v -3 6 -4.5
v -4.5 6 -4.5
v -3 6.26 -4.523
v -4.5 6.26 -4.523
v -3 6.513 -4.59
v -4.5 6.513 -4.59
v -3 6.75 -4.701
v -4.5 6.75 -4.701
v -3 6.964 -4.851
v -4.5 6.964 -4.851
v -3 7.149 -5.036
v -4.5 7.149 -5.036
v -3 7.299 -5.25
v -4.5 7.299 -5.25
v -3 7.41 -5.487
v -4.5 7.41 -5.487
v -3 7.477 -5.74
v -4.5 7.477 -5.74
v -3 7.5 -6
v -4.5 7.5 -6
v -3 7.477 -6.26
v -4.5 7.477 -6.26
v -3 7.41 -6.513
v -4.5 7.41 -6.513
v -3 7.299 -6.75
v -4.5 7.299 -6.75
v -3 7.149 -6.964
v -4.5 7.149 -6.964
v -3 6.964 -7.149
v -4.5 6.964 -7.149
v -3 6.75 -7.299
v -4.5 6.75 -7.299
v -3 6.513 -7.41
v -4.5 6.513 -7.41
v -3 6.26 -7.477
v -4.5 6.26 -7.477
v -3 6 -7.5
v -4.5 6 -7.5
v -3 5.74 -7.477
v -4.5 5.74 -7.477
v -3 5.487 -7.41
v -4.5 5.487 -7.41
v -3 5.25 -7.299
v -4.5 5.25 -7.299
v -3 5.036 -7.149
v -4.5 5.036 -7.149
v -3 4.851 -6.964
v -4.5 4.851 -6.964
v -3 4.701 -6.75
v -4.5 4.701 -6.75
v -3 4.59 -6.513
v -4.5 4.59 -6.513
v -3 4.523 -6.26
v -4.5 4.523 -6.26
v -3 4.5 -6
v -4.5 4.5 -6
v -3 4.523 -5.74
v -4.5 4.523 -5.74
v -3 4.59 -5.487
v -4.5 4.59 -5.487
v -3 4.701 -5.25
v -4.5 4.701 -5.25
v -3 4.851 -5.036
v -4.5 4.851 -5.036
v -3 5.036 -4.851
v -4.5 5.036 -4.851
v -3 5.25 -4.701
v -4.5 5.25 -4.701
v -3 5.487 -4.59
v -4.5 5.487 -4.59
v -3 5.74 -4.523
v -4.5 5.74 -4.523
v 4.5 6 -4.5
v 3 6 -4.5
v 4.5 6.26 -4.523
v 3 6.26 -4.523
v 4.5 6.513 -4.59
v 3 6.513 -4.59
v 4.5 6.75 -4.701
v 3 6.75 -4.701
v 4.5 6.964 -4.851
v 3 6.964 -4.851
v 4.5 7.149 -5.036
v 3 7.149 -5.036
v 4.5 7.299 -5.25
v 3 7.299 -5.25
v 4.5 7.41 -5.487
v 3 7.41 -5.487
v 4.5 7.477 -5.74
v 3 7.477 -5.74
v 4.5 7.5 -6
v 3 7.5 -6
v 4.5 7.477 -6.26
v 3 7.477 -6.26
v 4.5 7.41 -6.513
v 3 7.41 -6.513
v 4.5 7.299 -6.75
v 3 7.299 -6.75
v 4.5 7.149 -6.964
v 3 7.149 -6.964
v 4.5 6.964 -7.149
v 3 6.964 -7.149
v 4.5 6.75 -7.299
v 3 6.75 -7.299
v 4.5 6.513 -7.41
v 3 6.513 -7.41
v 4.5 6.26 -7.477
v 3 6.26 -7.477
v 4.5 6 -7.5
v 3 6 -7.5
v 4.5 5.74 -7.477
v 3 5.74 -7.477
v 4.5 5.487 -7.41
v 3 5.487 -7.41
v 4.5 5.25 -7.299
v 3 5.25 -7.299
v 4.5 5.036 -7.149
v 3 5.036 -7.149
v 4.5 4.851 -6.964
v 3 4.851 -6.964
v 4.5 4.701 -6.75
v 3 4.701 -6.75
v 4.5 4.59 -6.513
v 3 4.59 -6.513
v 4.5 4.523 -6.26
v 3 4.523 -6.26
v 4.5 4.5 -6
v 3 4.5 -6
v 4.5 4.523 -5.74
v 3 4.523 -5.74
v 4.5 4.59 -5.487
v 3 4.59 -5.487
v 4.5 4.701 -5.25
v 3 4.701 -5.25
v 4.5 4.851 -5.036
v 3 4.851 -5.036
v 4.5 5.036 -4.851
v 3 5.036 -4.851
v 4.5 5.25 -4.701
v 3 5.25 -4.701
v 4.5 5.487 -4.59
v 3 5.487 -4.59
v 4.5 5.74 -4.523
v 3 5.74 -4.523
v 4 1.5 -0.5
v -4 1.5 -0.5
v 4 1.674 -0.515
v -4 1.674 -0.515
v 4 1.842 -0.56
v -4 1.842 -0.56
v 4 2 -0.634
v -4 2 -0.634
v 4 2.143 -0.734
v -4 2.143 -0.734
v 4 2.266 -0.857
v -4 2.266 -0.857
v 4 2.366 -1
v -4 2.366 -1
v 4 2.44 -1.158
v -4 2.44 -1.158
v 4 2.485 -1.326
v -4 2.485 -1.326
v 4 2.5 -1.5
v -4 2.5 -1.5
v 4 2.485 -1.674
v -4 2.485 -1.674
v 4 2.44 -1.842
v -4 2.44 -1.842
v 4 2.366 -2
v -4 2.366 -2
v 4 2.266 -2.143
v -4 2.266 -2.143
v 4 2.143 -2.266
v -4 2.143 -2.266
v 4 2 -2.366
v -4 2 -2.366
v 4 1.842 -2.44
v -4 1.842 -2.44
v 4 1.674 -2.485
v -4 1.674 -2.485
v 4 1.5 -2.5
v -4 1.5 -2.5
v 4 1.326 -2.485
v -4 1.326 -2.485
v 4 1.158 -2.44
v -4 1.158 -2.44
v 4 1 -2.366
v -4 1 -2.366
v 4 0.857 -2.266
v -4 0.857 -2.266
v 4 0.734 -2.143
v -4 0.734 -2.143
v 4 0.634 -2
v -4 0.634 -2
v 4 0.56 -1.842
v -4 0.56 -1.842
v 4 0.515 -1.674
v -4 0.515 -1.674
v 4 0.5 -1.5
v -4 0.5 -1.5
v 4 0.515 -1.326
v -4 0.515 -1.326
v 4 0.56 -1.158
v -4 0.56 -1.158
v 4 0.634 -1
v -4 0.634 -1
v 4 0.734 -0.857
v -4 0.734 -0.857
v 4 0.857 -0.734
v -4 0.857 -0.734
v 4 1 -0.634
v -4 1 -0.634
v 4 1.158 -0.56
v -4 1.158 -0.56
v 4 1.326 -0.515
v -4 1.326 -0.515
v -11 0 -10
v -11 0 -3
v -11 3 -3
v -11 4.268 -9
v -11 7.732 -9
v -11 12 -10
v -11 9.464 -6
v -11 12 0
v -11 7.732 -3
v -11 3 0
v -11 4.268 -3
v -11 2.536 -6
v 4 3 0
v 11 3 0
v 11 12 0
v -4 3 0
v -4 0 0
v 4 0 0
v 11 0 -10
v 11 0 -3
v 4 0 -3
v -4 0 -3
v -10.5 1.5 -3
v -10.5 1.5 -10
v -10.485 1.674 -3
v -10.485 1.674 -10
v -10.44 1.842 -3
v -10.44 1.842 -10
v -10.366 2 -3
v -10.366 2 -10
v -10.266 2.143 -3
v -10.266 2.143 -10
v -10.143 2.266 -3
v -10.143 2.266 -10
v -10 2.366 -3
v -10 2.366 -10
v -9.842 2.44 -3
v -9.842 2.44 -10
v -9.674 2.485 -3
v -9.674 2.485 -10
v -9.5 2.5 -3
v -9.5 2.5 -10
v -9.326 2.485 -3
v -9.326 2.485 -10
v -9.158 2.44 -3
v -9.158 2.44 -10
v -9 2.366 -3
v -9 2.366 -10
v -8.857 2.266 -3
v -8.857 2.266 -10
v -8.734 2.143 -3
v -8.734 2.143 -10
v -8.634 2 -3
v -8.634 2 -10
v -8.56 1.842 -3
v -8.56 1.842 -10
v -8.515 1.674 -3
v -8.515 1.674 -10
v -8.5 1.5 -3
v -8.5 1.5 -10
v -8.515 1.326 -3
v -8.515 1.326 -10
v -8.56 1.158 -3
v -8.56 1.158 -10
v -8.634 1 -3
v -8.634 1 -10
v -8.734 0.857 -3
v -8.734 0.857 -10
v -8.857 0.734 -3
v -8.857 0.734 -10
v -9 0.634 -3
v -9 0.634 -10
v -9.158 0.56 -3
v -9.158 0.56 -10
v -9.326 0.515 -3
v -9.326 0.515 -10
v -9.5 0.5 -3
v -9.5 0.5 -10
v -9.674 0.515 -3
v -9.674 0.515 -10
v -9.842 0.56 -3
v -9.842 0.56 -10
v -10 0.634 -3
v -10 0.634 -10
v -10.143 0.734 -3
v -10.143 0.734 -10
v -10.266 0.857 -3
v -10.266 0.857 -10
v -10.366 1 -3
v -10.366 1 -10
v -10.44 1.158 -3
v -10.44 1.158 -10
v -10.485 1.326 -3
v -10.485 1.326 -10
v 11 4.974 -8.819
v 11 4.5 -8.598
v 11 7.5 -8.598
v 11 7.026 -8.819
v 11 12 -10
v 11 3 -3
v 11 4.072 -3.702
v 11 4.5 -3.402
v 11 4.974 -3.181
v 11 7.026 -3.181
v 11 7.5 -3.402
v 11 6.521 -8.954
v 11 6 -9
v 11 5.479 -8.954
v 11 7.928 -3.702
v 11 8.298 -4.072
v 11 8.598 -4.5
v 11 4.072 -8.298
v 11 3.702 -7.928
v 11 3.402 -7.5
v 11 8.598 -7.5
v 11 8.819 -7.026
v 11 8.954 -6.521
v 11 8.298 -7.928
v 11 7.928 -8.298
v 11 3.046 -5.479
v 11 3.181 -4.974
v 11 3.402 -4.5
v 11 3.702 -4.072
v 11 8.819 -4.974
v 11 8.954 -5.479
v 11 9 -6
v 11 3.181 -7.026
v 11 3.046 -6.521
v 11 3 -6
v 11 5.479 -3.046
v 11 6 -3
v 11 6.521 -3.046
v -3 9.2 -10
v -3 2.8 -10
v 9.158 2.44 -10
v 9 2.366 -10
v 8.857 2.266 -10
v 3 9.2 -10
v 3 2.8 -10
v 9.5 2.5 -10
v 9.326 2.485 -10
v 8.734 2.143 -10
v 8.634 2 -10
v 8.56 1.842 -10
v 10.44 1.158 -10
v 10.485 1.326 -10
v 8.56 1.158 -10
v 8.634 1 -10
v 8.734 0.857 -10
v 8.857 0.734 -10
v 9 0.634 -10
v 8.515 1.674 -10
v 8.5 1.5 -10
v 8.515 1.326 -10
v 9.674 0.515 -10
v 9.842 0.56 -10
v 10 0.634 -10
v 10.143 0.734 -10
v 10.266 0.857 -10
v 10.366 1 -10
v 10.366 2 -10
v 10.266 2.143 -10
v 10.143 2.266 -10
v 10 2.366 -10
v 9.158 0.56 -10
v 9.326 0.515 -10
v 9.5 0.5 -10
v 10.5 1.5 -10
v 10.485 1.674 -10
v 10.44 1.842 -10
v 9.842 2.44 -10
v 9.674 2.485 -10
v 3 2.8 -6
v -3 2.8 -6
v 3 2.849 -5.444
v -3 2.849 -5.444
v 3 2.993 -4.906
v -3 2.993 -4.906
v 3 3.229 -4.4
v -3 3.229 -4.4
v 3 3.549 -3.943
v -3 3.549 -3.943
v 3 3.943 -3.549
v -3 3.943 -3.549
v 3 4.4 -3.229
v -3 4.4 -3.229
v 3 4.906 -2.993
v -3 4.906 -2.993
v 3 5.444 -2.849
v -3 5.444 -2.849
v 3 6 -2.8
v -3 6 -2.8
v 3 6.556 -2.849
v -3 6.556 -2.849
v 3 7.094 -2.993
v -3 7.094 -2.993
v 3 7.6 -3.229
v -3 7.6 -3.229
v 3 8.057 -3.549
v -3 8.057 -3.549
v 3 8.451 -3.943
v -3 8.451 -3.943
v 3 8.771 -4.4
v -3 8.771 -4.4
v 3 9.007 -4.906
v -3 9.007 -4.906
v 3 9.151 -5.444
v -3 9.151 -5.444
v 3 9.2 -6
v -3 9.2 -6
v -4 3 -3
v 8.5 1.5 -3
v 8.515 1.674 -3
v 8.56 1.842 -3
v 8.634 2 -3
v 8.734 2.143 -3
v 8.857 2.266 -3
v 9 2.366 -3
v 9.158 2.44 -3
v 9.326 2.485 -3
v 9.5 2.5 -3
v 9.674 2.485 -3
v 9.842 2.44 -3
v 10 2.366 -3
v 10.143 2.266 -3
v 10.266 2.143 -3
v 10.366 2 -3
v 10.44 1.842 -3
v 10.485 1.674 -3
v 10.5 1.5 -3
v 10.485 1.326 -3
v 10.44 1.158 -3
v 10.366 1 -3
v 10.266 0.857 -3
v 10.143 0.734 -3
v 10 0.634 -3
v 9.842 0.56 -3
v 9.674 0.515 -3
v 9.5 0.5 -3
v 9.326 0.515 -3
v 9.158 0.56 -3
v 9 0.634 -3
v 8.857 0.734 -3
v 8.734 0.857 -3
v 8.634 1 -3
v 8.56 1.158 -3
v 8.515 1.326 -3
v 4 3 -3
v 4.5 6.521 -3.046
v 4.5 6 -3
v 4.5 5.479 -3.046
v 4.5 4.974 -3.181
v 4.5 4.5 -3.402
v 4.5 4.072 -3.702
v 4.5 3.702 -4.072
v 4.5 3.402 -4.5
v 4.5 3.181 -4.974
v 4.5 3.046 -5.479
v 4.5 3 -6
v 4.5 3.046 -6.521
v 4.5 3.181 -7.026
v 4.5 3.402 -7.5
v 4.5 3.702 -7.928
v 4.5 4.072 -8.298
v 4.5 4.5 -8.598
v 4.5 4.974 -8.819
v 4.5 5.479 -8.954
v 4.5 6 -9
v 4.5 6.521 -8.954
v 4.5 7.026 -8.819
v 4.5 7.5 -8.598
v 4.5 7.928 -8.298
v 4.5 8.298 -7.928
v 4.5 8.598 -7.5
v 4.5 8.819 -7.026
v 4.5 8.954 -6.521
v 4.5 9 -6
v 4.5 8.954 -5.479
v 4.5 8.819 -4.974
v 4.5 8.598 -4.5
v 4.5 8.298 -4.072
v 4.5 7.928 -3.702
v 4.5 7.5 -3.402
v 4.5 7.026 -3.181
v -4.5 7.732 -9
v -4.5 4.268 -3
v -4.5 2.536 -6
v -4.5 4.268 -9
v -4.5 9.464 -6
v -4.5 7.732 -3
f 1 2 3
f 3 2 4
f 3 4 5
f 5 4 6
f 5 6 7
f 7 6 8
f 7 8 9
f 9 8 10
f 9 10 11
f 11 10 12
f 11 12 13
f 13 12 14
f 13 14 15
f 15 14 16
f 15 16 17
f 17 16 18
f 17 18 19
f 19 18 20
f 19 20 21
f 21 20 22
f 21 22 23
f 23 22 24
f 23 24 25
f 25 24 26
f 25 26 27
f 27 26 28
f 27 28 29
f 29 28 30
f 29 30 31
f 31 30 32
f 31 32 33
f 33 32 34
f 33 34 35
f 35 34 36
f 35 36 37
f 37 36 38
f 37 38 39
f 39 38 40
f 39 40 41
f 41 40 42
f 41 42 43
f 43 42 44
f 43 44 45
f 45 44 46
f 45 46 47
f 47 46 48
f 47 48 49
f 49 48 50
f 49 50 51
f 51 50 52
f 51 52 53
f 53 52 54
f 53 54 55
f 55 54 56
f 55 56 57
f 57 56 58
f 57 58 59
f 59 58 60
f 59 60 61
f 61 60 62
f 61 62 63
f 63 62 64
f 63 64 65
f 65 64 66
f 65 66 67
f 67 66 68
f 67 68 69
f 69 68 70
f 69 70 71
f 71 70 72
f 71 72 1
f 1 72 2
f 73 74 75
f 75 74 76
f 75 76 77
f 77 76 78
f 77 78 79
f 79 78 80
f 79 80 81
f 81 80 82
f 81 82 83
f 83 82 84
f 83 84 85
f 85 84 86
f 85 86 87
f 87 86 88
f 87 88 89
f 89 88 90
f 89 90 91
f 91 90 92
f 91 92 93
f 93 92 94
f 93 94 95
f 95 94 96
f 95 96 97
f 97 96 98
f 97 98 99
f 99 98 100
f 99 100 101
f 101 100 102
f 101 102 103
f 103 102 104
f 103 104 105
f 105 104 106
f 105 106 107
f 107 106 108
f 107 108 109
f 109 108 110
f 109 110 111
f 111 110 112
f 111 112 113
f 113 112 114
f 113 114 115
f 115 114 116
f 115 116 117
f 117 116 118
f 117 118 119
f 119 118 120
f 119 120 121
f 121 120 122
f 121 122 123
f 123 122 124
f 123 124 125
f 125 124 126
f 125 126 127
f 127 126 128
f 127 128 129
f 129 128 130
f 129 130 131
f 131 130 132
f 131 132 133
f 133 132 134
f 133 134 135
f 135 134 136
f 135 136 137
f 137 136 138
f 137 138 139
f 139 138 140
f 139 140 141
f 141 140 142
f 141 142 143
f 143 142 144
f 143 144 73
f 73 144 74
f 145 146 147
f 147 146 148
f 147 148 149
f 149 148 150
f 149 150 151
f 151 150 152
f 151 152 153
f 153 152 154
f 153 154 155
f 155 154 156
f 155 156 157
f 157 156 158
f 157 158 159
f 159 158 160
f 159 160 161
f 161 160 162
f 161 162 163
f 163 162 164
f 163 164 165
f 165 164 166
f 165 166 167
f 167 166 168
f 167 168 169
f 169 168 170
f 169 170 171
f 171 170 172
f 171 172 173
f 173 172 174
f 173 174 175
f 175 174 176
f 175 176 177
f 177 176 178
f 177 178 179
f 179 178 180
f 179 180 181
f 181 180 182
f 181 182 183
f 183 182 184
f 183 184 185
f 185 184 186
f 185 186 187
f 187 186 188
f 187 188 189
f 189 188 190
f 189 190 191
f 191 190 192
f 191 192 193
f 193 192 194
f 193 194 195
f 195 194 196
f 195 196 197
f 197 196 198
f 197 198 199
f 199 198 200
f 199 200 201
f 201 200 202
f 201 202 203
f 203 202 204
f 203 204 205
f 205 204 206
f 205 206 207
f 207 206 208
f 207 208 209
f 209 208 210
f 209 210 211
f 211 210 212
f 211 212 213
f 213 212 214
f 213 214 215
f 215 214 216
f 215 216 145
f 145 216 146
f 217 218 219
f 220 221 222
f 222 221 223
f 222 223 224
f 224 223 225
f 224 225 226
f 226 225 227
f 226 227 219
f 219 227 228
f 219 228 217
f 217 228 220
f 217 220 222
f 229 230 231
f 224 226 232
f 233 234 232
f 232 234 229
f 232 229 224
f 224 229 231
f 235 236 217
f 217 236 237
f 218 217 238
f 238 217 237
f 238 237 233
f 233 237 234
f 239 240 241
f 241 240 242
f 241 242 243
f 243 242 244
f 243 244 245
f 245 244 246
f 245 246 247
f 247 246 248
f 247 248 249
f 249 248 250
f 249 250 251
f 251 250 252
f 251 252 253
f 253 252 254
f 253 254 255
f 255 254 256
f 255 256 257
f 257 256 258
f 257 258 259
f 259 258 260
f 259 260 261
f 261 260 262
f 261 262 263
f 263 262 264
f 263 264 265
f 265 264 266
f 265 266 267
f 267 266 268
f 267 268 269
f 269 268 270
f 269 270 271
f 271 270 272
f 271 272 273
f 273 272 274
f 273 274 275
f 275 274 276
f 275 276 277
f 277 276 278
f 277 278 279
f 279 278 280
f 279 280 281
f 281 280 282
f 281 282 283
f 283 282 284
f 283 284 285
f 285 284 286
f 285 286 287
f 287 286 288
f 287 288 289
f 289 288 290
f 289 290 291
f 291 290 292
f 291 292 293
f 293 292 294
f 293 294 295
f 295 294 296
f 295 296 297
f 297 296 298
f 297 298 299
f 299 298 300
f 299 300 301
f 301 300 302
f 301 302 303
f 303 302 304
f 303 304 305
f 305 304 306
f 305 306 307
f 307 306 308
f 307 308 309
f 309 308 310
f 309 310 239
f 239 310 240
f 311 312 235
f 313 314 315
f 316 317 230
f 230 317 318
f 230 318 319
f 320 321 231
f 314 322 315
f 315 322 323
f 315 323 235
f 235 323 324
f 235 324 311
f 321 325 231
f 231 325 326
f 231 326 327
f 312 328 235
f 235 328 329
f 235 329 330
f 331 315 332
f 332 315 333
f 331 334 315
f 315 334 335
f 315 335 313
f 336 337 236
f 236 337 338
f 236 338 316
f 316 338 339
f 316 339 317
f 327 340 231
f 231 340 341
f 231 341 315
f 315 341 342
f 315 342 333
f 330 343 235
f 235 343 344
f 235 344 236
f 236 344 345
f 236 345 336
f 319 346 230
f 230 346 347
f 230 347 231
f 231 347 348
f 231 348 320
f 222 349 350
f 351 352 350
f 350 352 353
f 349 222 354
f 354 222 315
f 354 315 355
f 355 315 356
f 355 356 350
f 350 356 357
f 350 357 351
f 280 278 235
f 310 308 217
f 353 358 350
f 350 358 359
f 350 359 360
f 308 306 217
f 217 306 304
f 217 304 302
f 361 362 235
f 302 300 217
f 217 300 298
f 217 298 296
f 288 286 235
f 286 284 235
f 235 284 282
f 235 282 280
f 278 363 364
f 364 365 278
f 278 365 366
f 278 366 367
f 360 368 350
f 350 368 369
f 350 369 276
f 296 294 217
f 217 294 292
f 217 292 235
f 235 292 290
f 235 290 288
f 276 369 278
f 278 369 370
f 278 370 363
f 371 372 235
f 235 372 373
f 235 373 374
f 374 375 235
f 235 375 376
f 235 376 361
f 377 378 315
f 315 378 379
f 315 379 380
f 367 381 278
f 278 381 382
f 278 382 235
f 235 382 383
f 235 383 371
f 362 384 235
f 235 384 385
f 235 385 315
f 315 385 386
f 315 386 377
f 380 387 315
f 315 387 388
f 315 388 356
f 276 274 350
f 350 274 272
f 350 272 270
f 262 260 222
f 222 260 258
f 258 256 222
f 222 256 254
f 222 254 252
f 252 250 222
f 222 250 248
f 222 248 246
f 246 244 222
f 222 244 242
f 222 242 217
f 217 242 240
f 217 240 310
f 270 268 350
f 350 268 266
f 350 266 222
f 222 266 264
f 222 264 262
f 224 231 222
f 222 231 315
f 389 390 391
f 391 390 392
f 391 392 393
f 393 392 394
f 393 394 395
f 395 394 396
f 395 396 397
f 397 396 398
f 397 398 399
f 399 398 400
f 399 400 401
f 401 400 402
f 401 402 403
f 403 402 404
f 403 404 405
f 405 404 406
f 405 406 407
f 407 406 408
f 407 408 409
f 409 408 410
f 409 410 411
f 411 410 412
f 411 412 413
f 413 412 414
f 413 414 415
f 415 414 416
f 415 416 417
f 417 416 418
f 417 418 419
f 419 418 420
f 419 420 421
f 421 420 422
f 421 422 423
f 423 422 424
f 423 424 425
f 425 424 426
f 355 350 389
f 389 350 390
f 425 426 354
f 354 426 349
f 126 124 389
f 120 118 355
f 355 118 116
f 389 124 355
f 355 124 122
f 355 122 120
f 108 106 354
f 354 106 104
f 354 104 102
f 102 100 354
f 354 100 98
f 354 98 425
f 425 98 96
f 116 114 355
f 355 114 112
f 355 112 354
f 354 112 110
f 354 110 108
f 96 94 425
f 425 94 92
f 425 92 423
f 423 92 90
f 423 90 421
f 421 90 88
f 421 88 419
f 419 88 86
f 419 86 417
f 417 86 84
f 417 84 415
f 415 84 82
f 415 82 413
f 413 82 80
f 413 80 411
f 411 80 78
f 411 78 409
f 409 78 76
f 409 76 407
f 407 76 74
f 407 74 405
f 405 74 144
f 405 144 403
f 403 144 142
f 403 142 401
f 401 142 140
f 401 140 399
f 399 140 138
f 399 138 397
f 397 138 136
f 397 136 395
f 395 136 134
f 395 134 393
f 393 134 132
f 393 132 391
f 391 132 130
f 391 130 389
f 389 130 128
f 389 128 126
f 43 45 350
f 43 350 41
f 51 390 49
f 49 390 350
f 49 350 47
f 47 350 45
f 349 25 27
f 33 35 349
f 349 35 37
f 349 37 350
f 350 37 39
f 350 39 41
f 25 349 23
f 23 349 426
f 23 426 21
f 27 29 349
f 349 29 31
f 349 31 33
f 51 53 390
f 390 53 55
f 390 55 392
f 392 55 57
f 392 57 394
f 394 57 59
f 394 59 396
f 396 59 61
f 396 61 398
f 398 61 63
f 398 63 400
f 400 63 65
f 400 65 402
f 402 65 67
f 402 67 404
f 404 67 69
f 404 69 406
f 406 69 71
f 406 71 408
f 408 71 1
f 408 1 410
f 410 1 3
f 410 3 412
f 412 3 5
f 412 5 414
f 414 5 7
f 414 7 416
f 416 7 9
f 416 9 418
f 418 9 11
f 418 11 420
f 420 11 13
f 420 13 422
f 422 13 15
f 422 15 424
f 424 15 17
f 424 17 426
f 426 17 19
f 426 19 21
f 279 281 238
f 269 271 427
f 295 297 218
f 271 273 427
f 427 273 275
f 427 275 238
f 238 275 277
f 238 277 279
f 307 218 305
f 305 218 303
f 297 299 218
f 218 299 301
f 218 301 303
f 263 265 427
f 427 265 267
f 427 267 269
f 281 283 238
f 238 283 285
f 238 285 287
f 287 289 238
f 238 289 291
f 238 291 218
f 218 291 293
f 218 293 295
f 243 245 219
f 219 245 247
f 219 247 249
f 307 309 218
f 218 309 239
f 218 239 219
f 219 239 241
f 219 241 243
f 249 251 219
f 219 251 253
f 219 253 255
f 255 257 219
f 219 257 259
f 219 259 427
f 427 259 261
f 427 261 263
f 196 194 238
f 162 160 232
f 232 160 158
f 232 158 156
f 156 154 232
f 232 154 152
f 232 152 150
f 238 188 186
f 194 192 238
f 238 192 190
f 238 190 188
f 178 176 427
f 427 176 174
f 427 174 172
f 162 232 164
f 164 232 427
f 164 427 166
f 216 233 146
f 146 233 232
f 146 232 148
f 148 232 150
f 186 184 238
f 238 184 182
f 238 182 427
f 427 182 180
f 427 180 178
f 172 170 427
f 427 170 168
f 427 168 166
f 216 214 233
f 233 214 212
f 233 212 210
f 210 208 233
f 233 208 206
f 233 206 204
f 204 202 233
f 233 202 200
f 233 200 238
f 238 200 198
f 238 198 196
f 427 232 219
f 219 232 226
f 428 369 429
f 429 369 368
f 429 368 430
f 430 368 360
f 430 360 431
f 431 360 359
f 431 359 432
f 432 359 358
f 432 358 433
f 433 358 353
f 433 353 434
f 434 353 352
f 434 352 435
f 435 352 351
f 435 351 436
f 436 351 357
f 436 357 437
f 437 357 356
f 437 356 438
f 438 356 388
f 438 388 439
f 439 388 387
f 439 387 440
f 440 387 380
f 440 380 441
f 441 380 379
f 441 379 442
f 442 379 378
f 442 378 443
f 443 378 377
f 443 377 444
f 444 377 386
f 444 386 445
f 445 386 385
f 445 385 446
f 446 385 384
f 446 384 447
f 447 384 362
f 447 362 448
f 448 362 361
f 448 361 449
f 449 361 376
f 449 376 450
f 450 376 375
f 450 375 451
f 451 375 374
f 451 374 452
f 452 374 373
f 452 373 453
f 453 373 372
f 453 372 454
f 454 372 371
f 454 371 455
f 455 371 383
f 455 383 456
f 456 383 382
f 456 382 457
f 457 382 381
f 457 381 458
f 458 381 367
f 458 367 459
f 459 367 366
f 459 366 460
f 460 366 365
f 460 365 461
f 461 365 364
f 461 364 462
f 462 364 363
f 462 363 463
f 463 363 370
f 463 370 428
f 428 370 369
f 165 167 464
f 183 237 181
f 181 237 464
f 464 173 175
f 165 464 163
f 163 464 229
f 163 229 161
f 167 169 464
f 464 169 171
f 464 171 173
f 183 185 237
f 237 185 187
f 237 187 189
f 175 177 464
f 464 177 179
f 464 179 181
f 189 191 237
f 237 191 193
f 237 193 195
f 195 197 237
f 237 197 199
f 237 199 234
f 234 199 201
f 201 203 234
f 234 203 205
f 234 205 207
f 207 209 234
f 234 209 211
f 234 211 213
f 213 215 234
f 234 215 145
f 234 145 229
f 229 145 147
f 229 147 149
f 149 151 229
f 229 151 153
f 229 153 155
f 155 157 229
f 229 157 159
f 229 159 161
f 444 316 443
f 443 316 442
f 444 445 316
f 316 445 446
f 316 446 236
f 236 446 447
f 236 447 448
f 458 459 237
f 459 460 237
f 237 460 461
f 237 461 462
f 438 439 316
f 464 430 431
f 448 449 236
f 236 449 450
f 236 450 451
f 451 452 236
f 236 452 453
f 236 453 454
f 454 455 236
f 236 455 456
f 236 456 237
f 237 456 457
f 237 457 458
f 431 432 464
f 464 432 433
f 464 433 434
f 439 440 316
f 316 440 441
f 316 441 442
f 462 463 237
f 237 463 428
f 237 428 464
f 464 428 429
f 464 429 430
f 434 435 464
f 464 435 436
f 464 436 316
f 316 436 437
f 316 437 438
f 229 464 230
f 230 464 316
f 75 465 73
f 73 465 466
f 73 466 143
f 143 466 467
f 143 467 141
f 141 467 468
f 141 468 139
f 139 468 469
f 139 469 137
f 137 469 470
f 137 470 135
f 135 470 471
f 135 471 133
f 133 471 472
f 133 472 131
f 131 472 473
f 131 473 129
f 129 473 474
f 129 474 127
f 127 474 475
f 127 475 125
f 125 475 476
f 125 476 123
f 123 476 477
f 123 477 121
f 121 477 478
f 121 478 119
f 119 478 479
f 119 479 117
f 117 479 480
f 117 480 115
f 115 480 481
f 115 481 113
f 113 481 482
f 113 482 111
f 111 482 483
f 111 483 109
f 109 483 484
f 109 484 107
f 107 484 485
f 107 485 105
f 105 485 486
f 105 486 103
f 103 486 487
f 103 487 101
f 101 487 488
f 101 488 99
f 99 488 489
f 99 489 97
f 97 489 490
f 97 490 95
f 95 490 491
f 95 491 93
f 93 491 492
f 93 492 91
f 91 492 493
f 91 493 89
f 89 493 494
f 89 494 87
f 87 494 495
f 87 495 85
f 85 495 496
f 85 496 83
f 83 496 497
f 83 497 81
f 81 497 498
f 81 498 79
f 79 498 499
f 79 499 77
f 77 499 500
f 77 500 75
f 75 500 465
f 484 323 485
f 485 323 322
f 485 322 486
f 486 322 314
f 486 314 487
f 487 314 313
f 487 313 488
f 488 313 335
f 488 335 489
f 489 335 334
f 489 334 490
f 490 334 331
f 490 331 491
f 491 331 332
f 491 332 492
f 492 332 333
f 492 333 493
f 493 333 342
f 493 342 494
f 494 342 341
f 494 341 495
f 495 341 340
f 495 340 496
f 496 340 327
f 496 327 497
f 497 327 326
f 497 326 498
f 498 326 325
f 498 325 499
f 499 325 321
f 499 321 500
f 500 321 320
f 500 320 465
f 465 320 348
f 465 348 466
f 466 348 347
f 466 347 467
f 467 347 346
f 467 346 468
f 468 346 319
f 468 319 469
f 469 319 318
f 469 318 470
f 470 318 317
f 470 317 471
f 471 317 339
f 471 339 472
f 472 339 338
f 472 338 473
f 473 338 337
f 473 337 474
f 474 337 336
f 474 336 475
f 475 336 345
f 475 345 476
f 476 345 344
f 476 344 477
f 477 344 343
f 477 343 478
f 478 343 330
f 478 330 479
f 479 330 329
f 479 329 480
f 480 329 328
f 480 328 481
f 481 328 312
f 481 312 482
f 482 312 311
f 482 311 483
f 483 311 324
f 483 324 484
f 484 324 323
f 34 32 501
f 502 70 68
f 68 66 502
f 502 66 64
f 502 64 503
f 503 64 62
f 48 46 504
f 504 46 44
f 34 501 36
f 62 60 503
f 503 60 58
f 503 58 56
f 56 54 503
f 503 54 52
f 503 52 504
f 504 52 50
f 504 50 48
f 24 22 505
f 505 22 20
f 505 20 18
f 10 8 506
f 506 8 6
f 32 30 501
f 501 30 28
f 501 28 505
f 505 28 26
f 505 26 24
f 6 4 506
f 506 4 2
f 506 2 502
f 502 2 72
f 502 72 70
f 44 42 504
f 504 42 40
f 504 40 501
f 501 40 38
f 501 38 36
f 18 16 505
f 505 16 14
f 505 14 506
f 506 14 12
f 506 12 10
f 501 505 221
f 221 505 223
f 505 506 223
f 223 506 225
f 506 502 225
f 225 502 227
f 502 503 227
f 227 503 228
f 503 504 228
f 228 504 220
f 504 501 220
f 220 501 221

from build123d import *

# Parameters (mm, degrees)
BOSS_EXTRUDE1_DEPTH     = 12
SKETCH5_R               = 1
CUT_EXTRUDE1_DEPTH      = 10
CUT_EXTRUDE2_DEPTH      = 3
CUT_EXTRUDE2_DEPTH_BACK = 3
CUT_EXTRUDE3_DEPTH      = 21.976176963
CUT_EXTRUDE3_DEPTH_BACK = 21.976176963
SKETCH7_R               = 1.5
SKETCH10_W              = 7
SKETCH10_H              = 3
CUT_EXTRUDE4_DEPTH      = 3
SKETCH9_R               = 1
CUT_EXTRUDE5_DEPTH      = 27.981475126
SKETCH12_R              = 3
CUT_EXTRUDE6_DEPTH      = 6.5
CUT_EXTRUDE7_DEPTH      = 6.5


with BuildPart() as part:
    # Sketch2 → Boss-Extrude1 (new body)
    with BuildSketch(Plane(origin=(0, 0, 0), x_dir=(1, 0, 0), z_dir=(0, 1, 0))):
        Polygon((0, 10), (11, 10), (11, 0), (-11, 0), (-11, 10), align=None)
    extrude(amount=BOSS_EXTRUDE1_DEPTH)

    # Sketch5 → Cut-Extrude1 (cut)
    with BuildSketch(Plane(origin=(0, 0, -10), x_dir=(-1, 0, 0), z_dir=(0, 0, -1))):
        with Locations((9.5, 1.5)):
            Circle(SKETCH5_R)
    cut_extrude1 = extrude(amount=-CUT_EXTRUDE1_DEPTH, mode=Mode.SUBTRACT)

    # Sketch6 → Cut-Extrude2 (cut, two sides: drawn at the far end of the back side and taken through both)
    with BuildSketch(Plane(origin=(0, 0, 0), x_dir=(0, 0, -1), z_dir=(1, 0, 0)).offset(-CUT_EXTRUDE2_DEPTH_BACK)):
        with BuildLine():
            Line((6, 9.2), (10, 9.2))
            Line((10, 9.2), (10, 2.8))
            Line((10, 2.8), (6, 2.8))
            ThreePointArc((6, 2.8), (2.8, 6), (6, 9.2))
        make_face()
    extrude(amount=CUT_EXTRUDE2_DEPTH + CUT_EXTRUDE2_DEPTH_BACK, mode=Mode.SUBTRACT)

    # Sketch7 → Cut-Extrude3 (cut, two sides: drawn at the far end of the back side and taken through both)
    with BuildSketch(Plane.ZY.offset(-3).offset(-CUT_EXTRUDE3_DEPTH_BACK)):
        with Locations((-6, 6)):
            Circle(SKETCH7_R)
    extrude(amount=CUT_EXTRUDE3_DEPTH + CUT_EXTRUDE3_DEPTH_BACK, mode=Mode.SUBTRACT)

    # Sketch10 → Cut-Extrude4 (cut)
    with BuildSketch(Plane(origin=(0, 0, 0), x_dir=(1, 0, 0), z_dir=(0, 1, 0))):
        with Locations((-7.5, 1.5)):
            Rectangle(SKETCH10_W, SKETCH10_H)
    cut_extrude4 = extrude(amount=CUT_EXTRUDE4_DEPTH, mode=Mode.SUBTRACT)

    # Sketch9 → Cut-Extrude5 (cut, through all)
    with BuildSketch(Plane.ZY.offset(11)):
        with Locations((-1.5, 1.5)):
            Circle(SKETCH9_R)
    extrude(amount=-CUT_EXTRUDE5_DEPTH, mode=Mode.SUBTRACT)

    # Mirror1: Cut-Extrude1, Cut-Extrude4 across plane
    add(cut_extrude1.mirror(Plane(origin=(0, 0, 0), x_dir=(0, 0, 1), z_dir=(1, 0, 0))), mode=Mode.SUBTRACT)
    add(cut_extrude4.mirror(Plane(origin=(0, 0, 0), x_dir=(0, 0, 1), z_dir=(1, 0, 0))), mode=Mode.SUBTRACT)

    # Sketch12 → Cut-Extrude6 (cut)
    with BuildSketch(Plane(origin=(11, 0, 0), x_dir=(0, 0, -1), z_dir=(1, 0, 0))):
        with Locations((6, 6)):
            Circle(SKETCH12_R)
    extrude(amount=-CUT_EXTRUDE6_DEPTH, mode=Mode.SUBTRACT)

    # Sketch13 → Cut-Extrude7 (cut)
    with BuildSketch(Plane.ZY.offset(11)):
        Polygon((-9, 7.732050808), (-9, 4.267949192), (-6, 2.535898385), (-3, 4.267949192), (-3, 7.732050808), (-6, 9.464101615), align=None)
    extrude(amount=-CUT_EXTRUDE7_DEPTH, mode=Mode.SUBTRACT)


solid = part.part
